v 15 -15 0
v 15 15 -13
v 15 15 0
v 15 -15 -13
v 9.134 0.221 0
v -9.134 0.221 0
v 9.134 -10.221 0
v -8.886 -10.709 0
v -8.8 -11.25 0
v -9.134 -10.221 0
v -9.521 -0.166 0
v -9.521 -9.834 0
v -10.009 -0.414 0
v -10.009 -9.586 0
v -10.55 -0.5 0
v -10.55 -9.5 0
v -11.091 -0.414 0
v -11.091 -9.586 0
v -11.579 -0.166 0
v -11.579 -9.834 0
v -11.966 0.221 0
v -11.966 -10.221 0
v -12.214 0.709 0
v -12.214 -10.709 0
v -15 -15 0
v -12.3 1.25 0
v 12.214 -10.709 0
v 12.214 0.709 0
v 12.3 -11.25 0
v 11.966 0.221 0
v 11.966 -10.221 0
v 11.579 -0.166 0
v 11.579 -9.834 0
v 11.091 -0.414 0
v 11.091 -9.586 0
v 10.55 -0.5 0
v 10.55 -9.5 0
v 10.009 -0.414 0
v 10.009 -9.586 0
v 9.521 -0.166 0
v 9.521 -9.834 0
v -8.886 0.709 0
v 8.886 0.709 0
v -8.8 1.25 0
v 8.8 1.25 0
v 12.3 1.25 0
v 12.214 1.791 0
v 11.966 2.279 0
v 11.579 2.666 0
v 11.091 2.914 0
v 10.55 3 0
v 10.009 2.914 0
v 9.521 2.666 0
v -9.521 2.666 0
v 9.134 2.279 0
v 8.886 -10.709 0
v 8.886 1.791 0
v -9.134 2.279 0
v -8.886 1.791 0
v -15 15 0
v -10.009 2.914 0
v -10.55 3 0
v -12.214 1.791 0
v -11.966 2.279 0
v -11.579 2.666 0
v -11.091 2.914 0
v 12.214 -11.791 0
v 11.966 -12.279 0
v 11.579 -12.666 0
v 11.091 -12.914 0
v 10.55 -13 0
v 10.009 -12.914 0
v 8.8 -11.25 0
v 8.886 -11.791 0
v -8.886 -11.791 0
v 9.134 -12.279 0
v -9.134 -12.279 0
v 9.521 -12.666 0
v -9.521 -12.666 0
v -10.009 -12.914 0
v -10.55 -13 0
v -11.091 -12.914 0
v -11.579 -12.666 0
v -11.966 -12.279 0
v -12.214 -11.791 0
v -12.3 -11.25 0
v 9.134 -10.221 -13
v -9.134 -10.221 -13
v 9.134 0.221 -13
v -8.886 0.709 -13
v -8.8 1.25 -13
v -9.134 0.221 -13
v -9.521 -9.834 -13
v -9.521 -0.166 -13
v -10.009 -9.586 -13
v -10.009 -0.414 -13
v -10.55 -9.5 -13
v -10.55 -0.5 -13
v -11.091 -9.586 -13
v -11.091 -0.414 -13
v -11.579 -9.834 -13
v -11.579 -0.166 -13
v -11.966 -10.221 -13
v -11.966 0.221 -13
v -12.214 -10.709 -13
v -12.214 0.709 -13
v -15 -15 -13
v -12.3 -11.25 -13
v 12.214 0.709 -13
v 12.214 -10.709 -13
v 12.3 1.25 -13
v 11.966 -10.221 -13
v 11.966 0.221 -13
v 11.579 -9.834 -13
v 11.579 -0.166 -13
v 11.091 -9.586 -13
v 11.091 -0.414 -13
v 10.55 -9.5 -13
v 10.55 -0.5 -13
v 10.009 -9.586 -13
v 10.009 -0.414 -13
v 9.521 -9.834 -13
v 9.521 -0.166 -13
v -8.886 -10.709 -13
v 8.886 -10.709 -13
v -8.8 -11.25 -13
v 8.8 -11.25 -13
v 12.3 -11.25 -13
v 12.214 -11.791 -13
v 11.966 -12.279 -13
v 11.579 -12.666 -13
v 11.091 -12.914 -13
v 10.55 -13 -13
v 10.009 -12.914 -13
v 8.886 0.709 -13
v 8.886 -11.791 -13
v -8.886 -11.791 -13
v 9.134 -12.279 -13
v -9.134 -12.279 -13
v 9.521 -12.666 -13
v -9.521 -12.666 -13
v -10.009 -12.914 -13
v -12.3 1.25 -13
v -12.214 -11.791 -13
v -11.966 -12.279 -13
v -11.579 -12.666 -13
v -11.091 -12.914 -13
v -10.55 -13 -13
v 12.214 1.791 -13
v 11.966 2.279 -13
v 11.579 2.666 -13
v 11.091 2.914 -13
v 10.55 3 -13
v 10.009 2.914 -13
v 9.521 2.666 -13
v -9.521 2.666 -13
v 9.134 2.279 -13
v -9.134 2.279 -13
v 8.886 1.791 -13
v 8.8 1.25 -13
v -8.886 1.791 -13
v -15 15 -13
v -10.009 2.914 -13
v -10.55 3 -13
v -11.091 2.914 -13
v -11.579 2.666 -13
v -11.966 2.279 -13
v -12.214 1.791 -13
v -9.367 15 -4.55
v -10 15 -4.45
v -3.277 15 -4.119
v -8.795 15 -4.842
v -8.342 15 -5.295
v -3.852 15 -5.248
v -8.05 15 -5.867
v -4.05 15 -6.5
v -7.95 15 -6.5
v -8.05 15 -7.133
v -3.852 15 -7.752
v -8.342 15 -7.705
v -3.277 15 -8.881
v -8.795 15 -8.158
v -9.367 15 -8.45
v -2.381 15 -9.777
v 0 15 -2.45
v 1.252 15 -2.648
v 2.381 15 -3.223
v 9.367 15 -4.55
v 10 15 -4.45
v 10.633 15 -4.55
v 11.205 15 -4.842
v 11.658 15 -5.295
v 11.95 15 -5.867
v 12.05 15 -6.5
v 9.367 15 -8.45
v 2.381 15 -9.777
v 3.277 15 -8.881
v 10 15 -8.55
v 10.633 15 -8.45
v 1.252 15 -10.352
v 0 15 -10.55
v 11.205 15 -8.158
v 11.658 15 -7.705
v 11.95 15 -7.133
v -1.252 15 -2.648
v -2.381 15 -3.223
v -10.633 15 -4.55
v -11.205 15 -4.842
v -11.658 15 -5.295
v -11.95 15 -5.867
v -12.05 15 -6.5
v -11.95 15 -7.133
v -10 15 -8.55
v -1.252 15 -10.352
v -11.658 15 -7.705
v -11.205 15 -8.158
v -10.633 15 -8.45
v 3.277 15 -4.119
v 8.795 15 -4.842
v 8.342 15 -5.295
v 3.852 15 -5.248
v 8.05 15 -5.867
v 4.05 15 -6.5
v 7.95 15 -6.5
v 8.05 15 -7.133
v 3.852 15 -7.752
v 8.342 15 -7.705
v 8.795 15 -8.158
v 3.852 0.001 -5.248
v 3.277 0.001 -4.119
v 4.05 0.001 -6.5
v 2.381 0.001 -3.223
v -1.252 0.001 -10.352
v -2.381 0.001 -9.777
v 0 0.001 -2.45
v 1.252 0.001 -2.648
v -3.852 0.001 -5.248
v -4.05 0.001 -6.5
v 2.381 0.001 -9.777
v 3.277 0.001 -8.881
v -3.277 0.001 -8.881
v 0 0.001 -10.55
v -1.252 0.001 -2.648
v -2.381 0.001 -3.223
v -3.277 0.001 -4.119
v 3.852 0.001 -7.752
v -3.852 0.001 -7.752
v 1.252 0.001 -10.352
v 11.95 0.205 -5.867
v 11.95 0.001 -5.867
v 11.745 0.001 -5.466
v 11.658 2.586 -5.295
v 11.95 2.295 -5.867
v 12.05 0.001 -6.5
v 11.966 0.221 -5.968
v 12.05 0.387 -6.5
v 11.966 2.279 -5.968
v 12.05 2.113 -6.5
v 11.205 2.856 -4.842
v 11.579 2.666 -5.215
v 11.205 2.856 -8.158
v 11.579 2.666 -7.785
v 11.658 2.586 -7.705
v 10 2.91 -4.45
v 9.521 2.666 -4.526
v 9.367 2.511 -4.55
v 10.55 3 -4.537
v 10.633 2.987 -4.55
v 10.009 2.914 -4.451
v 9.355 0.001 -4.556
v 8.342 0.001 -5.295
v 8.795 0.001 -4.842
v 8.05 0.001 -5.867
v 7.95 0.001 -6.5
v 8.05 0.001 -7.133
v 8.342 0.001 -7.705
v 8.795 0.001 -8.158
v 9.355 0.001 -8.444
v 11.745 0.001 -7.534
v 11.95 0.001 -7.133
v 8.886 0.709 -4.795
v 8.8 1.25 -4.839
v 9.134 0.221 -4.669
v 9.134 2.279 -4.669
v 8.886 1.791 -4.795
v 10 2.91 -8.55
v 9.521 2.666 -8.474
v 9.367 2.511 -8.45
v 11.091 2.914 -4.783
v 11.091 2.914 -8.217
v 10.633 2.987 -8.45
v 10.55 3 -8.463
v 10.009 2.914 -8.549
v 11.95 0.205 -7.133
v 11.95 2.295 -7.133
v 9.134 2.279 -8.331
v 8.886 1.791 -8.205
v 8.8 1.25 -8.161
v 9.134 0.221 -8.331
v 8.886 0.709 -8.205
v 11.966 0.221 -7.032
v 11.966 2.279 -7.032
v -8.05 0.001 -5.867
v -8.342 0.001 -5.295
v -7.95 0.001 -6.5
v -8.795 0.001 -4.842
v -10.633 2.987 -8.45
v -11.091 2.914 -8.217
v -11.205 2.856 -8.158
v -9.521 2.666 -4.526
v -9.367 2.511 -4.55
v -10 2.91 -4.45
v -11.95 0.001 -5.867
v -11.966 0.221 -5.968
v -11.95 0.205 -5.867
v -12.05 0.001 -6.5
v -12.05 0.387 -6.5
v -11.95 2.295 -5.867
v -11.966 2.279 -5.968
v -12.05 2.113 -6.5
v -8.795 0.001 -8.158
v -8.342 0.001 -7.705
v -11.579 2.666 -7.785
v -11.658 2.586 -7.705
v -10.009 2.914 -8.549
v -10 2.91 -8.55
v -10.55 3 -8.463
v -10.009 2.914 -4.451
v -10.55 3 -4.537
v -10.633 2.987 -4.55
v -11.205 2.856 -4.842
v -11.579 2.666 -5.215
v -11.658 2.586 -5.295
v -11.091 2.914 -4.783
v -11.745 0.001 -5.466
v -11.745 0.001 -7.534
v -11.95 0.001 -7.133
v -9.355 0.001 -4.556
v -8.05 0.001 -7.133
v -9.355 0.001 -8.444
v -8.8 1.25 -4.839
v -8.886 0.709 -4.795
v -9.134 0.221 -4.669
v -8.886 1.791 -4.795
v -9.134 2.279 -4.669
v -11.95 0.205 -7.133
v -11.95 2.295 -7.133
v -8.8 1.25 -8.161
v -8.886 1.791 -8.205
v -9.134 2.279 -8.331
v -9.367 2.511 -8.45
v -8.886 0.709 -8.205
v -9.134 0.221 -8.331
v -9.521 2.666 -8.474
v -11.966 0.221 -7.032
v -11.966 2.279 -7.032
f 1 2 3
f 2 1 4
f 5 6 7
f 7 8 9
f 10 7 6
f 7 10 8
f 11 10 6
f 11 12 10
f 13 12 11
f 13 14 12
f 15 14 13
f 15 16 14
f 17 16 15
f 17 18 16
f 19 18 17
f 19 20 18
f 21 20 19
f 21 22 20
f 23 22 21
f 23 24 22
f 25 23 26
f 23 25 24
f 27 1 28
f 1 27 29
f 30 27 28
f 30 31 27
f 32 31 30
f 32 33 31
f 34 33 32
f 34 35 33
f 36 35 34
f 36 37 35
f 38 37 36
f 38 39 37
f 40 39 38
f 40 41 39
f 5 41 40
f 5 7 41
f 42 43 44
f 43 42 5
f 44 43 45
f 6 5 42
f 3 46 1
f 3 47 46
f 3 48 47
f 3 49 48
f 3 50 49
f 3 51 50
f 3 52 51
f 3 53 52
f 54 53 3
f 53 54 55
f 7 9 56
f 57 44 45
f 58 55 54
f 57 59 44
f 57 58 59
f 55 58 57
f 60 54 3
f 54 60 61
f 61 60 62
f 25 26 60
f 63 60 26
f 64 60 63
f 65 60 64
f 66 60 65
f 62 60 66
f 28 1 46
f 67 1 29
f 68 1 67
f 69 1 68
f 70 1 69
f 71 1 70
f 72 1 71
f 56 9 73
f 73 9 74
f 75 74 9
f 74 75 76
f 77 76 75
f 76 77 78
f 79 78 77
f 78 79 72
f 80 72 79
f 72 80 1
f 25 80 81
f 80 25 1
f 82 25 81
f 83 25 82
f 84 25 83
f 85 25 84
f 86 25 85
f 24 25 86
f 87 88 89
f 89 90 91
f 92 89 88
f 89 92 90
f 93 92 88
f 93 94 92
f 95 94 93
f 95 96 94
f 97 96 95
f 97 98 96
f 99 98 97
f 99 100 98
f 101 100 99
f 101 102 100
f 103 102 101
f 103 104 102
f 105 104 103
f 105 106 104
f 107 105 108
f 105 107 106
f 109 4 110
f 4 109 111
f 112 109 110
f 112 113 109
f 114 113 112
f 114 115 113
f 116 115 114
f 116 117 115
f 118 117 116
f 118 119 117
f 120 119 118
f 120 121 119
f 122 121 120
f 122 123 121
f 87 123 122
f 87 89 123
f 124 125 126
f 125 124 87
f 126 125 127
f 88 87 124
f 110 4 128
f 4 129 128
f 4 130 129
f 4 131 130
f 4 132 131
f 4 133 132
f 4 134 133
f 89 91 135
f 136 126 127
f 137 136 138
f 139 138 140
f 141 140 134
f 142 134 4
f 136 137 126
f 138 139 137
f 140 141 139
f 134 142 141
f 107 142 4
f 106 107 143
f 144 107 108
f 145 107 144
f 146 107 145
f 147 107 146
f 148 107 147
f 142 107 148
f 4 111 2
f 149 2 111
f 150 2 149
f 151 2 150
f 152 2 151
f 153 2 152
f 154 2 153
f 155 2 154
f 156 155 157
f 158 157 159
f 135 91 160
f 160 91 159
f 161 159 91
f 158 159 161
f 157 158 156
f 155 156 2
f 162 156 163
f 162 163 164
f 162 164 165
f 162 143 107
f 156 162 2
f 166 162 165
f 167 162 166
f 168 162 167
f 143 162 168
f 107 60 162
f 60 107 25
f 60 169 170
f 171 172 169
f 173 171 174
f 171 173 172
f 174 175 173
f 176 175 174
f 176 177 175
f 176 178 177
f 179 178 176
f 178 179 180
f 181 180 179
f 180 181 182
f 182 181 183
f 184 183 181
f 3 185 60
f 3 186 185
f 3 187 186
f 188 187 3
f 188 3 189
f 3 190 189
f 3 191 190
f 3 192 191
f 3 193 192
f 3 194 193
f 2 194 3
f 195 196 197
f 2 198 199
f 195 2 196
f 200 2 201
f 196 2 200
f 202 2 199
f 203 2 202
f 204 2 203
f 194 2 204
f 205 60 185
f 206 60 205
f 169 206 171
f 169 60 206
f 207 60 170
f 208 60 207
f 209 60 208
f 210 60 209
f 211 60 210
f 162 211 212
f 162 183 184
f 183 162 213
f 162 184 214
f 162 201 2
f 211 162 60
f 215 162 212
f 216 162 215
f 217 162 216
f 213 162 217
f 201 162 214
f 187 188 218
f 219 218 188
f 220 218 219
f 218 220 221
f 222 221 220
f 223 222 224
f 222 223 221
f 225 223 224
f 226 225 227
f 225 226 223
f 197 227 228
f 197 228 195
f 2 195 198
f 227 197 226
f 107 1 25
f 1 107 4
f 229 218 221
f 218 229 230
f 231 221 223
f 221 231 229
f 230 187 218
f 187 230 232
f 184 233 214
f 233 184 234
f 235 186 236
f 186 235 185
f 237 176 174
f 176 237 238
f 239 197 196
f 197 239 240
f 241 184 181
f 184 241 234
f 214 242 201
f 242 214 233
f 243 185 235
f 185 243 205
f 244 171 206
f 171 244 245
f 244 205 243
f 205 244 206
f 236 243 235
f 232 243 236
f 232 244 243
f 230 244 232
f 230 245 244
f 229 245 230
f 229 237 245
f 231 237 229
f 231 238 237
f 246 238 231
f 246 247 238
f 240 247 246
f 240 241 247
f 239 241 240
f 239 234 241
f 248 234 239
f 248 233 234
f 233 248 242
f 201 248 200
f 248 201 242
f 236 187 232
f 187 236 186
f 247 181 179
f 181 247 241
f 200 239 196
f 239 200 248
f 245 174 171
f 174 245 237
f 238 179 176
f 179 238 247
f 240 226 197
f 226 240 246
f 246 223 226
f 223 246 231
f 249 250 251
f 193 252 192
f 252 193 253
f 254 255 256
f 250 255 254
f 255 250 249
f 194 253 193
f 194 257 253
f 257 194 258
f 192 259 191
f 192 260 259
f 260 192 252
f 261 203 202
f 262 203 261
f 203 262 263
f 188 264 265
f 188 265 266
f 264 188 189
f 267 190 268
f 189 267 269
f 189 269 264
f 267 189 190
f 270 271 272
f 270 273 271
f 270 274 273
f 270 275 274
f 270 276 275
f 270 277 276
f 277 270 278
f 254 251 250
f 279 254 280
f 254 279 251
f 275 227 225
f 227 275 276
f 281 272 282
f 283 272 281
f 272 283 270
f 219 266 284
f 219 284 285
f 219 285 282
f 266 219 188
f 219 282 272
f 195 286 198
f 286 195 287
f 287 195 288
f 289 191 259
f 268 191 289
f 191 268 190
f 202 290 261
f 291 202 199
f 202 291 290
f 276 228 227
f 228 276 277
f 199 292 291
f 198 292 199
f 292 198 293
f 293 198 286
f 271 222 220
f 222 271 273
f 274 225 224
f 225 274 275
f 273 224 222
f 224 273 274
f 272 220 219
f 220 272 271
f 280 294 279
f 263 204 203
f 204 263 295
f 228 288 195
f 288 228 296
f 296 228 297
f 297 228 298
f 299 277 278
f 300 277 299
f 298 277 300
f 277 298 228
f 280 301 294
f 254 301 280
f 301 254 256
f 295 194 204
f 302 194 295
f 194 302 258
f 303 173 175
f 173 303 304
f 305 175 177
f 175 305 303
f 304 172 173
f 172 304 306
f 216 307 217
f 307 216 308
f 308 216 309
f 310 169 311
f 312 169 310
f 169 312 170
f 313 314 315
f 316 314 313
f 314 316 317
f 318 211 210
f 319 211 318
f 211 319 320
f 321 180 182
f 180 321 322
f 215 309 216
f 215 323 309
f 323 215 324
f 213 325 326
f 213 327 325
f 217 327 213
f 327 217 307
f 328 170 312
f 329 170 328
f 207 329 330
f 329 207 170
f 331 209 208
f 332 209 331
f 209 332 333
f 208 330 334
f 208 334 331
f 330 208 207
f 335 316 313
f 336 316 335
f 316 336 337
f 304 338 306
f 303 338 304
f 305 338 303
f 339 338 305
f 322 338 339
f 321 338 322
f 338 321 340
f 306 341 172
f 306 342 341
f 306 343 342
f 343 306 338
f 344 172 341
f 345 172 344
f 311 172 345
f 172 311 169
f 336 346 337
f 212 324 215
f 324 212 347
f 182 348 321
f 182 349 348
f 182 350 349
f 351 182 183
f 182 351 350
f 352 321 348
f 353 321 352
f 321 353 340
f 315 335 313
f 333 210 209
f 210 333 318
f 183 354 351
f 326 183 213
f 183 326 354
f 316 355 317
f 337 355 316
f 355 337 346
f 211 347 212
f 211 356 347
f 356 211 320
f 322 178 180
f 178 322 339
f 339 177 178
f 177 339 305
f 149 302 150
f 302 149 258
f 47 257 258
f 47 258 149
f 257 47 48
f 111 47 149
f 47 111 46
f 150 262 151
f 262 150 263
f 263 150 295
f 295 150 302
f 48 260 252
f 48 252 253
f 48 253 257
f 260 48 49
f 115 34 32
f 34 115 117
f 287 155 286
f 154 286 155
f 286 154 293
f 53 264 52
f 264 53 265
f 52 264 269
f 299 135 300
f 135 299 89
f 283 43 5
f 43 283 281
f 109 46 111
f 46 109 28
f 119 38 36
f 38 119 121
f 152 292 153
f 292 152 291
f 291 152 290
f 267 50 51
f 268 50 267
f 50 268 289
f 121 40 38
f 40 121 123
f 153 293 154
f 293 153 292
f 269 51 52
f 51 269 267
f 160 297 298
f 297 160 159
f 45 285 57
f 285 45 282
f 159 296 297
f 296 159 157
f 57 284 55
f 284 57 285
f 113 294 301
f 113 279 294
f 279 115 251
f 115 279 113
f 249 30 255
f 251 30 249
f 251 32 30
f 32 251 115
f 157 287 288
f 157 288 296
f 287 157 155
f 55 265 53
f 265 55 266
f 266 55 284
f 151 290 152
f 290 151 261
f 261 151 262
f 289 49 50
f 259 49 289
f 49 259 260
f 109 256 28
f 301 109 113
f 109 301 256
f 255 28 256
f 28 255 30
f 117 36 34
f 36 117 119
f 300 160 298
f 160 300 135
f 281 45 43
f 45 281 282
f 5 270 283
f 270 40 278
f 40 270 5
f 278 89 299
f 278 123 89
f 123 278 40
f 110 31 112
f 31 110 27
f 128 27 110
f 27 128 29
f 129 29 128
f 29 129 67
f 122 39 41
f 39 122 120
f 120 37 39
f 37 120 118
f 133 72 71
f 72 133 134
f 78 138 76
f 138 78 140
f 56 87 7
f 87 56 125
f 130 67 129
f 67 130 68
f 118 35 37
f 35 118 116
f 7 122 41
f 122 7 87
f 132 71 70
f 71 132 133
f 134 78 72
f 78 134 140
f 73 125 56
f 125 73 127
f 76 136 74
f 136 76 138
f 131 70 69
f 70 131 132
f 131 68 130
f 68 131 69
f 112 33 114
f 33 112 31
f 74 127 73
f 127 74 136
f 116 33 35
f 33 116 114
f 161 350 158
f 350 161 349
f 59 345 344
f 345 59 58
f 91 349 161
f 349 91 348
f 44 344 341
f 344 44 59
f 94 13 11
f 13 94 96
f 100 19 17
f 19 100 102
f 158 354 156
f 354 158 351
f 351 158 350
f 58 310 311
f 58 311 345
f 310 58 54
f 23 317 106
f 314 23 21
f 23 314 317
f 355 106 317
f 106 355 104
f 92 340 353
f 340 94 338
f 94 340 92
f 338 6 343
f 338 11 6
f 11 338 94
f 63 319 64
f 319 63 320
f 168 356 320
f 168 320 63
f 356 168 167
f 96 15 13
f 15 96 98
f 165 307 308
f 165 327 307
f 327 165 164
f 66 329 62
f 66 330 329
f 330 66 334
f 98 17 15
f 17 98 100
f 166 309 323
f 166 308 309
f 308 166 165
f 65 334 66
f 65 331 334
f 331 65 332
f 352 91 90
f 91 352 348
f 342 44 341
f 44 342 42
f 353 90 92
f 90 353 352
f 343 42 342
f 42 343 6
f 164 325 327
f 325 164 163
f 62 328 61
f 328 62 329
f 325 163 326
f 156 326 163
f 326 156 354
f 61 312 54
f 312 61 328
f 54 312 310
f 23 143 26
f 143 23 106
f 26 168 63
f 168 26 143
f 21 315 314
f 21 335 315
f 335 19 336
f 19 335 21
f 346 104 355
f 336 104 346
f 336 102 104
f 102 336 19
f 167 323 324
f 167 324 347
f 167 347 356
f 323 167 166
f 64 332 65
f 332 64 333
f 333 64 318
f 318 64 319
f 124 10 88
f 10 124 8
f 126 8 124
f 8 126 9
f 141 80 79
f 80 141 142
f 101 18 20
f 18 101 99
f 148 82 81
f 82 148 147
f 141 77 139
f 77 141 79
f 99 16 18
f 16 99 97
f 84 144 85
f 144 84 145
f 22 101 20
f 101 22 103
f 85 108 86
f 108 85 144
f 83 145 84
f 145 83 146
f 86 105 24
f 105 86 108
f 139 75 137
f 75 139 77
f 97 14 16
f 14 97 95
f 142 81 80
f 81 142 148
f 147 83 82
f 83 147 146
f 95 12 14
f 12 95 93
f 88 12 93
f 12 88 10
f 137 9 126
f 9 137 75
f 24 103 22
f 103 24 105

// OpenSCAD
// file: CameraMount.scad
//include <threads.scad>

// UC-A73


UNC_Insert_D = 8.1;
M3_Insert_D = 4.1;
module CameraHoles
(
camera_hole_width,
camera_hole_height,
camera_center_x,
h,d
)
{
        // mount Holes for camera 
        translate([0,-camera_center_x,0])
        {
            translate([camera_hole_width/2, camera_hole_height/2, -0.001])
                cylinder(h = h, d = d, $fn=20);
            
            translate([camera_hole_width/2, -camera_hole_height/2,-0.001])
                cylinder(h = h, d = d, $fn=20);

            translate([-camera_hole_width/2, camera_hole_height/2,-0.001])
                cylinder(h = h, d = d, $fn=20);

            translate([-camera_hole_width/2, -camera_hole_height/2,-0.001])
                cylinder(h = h, d = d, $fn=20);
        }
}

module Camera(
    camera_dim_width,
    camera_dim_height,
    camera_hole_dim,
    mount_hegiht,
)
{
    difference() {        
     
        // box
        translate([0,0,-mount_hegiht/2])
            cube([camera_dim_width, camera_dim_height, mount_hegiht], center=true);
  


        // bottom for UNC
        translate([0,camera_dim_height/2+0.001,-mount_hegiht/2])
            rotate([90,0,0])
                cylinder(h = 15, d = UNC_Insert_D, $fn=20);
        // bottom for M3
        translate([10,camera_dim_height/2+0.001,-mount_hegiht/2])
            rotate([90,0,0])
                cylinder(h = 15, d = M3_Insert_D, $fn=20);
         translate([-10,camera_dim_height/2+0.001,-mount_hegiht/2])
            rotate([90,0,0])
                cylinder(h = 15, d = M3_Insert_D, $fn=20);
        
//        
    }
}
// main file
UAC_A173_camera_dim_width = 30;
UAC_A173_camera_dim_height = 30;
UAC_A173_camera_hole_width = 21.1;
UAC_A173_camera_hole_height = 12.5;
UAC_A173_camera_center_x = 5;
UAC_A173_camera_hole_dim = 3.5;
UAC_A173_camera_hole_nipple_h = 1.5;
UAC_A173_camera_hole_nipple_d = UAC_A173_camera_hole_dim + 1;
UAC_A173_mount_hegiht = 13;



include <CameraMount.scad>
module UAC_A173_Camera()
{
    difference()
    {
        union()
        {
            Camera(
            UAC_A173_camera_dim_width,
            UAC_A173_camera_dim_height,
            UAC_A173_camera_hole_dim,
            UAC_A173_mount_hegiht);
            
             }
        // holes
        translate([0,0,-50])
            CameraHoles(UAC_A173_camera_hole_width, UAC_A173_camera_hole_height, UAC_A173_camera_center_x, h=100, d=UAC_A173_camera_hole_dim);

    }
}


UAC_A173_Camera();
